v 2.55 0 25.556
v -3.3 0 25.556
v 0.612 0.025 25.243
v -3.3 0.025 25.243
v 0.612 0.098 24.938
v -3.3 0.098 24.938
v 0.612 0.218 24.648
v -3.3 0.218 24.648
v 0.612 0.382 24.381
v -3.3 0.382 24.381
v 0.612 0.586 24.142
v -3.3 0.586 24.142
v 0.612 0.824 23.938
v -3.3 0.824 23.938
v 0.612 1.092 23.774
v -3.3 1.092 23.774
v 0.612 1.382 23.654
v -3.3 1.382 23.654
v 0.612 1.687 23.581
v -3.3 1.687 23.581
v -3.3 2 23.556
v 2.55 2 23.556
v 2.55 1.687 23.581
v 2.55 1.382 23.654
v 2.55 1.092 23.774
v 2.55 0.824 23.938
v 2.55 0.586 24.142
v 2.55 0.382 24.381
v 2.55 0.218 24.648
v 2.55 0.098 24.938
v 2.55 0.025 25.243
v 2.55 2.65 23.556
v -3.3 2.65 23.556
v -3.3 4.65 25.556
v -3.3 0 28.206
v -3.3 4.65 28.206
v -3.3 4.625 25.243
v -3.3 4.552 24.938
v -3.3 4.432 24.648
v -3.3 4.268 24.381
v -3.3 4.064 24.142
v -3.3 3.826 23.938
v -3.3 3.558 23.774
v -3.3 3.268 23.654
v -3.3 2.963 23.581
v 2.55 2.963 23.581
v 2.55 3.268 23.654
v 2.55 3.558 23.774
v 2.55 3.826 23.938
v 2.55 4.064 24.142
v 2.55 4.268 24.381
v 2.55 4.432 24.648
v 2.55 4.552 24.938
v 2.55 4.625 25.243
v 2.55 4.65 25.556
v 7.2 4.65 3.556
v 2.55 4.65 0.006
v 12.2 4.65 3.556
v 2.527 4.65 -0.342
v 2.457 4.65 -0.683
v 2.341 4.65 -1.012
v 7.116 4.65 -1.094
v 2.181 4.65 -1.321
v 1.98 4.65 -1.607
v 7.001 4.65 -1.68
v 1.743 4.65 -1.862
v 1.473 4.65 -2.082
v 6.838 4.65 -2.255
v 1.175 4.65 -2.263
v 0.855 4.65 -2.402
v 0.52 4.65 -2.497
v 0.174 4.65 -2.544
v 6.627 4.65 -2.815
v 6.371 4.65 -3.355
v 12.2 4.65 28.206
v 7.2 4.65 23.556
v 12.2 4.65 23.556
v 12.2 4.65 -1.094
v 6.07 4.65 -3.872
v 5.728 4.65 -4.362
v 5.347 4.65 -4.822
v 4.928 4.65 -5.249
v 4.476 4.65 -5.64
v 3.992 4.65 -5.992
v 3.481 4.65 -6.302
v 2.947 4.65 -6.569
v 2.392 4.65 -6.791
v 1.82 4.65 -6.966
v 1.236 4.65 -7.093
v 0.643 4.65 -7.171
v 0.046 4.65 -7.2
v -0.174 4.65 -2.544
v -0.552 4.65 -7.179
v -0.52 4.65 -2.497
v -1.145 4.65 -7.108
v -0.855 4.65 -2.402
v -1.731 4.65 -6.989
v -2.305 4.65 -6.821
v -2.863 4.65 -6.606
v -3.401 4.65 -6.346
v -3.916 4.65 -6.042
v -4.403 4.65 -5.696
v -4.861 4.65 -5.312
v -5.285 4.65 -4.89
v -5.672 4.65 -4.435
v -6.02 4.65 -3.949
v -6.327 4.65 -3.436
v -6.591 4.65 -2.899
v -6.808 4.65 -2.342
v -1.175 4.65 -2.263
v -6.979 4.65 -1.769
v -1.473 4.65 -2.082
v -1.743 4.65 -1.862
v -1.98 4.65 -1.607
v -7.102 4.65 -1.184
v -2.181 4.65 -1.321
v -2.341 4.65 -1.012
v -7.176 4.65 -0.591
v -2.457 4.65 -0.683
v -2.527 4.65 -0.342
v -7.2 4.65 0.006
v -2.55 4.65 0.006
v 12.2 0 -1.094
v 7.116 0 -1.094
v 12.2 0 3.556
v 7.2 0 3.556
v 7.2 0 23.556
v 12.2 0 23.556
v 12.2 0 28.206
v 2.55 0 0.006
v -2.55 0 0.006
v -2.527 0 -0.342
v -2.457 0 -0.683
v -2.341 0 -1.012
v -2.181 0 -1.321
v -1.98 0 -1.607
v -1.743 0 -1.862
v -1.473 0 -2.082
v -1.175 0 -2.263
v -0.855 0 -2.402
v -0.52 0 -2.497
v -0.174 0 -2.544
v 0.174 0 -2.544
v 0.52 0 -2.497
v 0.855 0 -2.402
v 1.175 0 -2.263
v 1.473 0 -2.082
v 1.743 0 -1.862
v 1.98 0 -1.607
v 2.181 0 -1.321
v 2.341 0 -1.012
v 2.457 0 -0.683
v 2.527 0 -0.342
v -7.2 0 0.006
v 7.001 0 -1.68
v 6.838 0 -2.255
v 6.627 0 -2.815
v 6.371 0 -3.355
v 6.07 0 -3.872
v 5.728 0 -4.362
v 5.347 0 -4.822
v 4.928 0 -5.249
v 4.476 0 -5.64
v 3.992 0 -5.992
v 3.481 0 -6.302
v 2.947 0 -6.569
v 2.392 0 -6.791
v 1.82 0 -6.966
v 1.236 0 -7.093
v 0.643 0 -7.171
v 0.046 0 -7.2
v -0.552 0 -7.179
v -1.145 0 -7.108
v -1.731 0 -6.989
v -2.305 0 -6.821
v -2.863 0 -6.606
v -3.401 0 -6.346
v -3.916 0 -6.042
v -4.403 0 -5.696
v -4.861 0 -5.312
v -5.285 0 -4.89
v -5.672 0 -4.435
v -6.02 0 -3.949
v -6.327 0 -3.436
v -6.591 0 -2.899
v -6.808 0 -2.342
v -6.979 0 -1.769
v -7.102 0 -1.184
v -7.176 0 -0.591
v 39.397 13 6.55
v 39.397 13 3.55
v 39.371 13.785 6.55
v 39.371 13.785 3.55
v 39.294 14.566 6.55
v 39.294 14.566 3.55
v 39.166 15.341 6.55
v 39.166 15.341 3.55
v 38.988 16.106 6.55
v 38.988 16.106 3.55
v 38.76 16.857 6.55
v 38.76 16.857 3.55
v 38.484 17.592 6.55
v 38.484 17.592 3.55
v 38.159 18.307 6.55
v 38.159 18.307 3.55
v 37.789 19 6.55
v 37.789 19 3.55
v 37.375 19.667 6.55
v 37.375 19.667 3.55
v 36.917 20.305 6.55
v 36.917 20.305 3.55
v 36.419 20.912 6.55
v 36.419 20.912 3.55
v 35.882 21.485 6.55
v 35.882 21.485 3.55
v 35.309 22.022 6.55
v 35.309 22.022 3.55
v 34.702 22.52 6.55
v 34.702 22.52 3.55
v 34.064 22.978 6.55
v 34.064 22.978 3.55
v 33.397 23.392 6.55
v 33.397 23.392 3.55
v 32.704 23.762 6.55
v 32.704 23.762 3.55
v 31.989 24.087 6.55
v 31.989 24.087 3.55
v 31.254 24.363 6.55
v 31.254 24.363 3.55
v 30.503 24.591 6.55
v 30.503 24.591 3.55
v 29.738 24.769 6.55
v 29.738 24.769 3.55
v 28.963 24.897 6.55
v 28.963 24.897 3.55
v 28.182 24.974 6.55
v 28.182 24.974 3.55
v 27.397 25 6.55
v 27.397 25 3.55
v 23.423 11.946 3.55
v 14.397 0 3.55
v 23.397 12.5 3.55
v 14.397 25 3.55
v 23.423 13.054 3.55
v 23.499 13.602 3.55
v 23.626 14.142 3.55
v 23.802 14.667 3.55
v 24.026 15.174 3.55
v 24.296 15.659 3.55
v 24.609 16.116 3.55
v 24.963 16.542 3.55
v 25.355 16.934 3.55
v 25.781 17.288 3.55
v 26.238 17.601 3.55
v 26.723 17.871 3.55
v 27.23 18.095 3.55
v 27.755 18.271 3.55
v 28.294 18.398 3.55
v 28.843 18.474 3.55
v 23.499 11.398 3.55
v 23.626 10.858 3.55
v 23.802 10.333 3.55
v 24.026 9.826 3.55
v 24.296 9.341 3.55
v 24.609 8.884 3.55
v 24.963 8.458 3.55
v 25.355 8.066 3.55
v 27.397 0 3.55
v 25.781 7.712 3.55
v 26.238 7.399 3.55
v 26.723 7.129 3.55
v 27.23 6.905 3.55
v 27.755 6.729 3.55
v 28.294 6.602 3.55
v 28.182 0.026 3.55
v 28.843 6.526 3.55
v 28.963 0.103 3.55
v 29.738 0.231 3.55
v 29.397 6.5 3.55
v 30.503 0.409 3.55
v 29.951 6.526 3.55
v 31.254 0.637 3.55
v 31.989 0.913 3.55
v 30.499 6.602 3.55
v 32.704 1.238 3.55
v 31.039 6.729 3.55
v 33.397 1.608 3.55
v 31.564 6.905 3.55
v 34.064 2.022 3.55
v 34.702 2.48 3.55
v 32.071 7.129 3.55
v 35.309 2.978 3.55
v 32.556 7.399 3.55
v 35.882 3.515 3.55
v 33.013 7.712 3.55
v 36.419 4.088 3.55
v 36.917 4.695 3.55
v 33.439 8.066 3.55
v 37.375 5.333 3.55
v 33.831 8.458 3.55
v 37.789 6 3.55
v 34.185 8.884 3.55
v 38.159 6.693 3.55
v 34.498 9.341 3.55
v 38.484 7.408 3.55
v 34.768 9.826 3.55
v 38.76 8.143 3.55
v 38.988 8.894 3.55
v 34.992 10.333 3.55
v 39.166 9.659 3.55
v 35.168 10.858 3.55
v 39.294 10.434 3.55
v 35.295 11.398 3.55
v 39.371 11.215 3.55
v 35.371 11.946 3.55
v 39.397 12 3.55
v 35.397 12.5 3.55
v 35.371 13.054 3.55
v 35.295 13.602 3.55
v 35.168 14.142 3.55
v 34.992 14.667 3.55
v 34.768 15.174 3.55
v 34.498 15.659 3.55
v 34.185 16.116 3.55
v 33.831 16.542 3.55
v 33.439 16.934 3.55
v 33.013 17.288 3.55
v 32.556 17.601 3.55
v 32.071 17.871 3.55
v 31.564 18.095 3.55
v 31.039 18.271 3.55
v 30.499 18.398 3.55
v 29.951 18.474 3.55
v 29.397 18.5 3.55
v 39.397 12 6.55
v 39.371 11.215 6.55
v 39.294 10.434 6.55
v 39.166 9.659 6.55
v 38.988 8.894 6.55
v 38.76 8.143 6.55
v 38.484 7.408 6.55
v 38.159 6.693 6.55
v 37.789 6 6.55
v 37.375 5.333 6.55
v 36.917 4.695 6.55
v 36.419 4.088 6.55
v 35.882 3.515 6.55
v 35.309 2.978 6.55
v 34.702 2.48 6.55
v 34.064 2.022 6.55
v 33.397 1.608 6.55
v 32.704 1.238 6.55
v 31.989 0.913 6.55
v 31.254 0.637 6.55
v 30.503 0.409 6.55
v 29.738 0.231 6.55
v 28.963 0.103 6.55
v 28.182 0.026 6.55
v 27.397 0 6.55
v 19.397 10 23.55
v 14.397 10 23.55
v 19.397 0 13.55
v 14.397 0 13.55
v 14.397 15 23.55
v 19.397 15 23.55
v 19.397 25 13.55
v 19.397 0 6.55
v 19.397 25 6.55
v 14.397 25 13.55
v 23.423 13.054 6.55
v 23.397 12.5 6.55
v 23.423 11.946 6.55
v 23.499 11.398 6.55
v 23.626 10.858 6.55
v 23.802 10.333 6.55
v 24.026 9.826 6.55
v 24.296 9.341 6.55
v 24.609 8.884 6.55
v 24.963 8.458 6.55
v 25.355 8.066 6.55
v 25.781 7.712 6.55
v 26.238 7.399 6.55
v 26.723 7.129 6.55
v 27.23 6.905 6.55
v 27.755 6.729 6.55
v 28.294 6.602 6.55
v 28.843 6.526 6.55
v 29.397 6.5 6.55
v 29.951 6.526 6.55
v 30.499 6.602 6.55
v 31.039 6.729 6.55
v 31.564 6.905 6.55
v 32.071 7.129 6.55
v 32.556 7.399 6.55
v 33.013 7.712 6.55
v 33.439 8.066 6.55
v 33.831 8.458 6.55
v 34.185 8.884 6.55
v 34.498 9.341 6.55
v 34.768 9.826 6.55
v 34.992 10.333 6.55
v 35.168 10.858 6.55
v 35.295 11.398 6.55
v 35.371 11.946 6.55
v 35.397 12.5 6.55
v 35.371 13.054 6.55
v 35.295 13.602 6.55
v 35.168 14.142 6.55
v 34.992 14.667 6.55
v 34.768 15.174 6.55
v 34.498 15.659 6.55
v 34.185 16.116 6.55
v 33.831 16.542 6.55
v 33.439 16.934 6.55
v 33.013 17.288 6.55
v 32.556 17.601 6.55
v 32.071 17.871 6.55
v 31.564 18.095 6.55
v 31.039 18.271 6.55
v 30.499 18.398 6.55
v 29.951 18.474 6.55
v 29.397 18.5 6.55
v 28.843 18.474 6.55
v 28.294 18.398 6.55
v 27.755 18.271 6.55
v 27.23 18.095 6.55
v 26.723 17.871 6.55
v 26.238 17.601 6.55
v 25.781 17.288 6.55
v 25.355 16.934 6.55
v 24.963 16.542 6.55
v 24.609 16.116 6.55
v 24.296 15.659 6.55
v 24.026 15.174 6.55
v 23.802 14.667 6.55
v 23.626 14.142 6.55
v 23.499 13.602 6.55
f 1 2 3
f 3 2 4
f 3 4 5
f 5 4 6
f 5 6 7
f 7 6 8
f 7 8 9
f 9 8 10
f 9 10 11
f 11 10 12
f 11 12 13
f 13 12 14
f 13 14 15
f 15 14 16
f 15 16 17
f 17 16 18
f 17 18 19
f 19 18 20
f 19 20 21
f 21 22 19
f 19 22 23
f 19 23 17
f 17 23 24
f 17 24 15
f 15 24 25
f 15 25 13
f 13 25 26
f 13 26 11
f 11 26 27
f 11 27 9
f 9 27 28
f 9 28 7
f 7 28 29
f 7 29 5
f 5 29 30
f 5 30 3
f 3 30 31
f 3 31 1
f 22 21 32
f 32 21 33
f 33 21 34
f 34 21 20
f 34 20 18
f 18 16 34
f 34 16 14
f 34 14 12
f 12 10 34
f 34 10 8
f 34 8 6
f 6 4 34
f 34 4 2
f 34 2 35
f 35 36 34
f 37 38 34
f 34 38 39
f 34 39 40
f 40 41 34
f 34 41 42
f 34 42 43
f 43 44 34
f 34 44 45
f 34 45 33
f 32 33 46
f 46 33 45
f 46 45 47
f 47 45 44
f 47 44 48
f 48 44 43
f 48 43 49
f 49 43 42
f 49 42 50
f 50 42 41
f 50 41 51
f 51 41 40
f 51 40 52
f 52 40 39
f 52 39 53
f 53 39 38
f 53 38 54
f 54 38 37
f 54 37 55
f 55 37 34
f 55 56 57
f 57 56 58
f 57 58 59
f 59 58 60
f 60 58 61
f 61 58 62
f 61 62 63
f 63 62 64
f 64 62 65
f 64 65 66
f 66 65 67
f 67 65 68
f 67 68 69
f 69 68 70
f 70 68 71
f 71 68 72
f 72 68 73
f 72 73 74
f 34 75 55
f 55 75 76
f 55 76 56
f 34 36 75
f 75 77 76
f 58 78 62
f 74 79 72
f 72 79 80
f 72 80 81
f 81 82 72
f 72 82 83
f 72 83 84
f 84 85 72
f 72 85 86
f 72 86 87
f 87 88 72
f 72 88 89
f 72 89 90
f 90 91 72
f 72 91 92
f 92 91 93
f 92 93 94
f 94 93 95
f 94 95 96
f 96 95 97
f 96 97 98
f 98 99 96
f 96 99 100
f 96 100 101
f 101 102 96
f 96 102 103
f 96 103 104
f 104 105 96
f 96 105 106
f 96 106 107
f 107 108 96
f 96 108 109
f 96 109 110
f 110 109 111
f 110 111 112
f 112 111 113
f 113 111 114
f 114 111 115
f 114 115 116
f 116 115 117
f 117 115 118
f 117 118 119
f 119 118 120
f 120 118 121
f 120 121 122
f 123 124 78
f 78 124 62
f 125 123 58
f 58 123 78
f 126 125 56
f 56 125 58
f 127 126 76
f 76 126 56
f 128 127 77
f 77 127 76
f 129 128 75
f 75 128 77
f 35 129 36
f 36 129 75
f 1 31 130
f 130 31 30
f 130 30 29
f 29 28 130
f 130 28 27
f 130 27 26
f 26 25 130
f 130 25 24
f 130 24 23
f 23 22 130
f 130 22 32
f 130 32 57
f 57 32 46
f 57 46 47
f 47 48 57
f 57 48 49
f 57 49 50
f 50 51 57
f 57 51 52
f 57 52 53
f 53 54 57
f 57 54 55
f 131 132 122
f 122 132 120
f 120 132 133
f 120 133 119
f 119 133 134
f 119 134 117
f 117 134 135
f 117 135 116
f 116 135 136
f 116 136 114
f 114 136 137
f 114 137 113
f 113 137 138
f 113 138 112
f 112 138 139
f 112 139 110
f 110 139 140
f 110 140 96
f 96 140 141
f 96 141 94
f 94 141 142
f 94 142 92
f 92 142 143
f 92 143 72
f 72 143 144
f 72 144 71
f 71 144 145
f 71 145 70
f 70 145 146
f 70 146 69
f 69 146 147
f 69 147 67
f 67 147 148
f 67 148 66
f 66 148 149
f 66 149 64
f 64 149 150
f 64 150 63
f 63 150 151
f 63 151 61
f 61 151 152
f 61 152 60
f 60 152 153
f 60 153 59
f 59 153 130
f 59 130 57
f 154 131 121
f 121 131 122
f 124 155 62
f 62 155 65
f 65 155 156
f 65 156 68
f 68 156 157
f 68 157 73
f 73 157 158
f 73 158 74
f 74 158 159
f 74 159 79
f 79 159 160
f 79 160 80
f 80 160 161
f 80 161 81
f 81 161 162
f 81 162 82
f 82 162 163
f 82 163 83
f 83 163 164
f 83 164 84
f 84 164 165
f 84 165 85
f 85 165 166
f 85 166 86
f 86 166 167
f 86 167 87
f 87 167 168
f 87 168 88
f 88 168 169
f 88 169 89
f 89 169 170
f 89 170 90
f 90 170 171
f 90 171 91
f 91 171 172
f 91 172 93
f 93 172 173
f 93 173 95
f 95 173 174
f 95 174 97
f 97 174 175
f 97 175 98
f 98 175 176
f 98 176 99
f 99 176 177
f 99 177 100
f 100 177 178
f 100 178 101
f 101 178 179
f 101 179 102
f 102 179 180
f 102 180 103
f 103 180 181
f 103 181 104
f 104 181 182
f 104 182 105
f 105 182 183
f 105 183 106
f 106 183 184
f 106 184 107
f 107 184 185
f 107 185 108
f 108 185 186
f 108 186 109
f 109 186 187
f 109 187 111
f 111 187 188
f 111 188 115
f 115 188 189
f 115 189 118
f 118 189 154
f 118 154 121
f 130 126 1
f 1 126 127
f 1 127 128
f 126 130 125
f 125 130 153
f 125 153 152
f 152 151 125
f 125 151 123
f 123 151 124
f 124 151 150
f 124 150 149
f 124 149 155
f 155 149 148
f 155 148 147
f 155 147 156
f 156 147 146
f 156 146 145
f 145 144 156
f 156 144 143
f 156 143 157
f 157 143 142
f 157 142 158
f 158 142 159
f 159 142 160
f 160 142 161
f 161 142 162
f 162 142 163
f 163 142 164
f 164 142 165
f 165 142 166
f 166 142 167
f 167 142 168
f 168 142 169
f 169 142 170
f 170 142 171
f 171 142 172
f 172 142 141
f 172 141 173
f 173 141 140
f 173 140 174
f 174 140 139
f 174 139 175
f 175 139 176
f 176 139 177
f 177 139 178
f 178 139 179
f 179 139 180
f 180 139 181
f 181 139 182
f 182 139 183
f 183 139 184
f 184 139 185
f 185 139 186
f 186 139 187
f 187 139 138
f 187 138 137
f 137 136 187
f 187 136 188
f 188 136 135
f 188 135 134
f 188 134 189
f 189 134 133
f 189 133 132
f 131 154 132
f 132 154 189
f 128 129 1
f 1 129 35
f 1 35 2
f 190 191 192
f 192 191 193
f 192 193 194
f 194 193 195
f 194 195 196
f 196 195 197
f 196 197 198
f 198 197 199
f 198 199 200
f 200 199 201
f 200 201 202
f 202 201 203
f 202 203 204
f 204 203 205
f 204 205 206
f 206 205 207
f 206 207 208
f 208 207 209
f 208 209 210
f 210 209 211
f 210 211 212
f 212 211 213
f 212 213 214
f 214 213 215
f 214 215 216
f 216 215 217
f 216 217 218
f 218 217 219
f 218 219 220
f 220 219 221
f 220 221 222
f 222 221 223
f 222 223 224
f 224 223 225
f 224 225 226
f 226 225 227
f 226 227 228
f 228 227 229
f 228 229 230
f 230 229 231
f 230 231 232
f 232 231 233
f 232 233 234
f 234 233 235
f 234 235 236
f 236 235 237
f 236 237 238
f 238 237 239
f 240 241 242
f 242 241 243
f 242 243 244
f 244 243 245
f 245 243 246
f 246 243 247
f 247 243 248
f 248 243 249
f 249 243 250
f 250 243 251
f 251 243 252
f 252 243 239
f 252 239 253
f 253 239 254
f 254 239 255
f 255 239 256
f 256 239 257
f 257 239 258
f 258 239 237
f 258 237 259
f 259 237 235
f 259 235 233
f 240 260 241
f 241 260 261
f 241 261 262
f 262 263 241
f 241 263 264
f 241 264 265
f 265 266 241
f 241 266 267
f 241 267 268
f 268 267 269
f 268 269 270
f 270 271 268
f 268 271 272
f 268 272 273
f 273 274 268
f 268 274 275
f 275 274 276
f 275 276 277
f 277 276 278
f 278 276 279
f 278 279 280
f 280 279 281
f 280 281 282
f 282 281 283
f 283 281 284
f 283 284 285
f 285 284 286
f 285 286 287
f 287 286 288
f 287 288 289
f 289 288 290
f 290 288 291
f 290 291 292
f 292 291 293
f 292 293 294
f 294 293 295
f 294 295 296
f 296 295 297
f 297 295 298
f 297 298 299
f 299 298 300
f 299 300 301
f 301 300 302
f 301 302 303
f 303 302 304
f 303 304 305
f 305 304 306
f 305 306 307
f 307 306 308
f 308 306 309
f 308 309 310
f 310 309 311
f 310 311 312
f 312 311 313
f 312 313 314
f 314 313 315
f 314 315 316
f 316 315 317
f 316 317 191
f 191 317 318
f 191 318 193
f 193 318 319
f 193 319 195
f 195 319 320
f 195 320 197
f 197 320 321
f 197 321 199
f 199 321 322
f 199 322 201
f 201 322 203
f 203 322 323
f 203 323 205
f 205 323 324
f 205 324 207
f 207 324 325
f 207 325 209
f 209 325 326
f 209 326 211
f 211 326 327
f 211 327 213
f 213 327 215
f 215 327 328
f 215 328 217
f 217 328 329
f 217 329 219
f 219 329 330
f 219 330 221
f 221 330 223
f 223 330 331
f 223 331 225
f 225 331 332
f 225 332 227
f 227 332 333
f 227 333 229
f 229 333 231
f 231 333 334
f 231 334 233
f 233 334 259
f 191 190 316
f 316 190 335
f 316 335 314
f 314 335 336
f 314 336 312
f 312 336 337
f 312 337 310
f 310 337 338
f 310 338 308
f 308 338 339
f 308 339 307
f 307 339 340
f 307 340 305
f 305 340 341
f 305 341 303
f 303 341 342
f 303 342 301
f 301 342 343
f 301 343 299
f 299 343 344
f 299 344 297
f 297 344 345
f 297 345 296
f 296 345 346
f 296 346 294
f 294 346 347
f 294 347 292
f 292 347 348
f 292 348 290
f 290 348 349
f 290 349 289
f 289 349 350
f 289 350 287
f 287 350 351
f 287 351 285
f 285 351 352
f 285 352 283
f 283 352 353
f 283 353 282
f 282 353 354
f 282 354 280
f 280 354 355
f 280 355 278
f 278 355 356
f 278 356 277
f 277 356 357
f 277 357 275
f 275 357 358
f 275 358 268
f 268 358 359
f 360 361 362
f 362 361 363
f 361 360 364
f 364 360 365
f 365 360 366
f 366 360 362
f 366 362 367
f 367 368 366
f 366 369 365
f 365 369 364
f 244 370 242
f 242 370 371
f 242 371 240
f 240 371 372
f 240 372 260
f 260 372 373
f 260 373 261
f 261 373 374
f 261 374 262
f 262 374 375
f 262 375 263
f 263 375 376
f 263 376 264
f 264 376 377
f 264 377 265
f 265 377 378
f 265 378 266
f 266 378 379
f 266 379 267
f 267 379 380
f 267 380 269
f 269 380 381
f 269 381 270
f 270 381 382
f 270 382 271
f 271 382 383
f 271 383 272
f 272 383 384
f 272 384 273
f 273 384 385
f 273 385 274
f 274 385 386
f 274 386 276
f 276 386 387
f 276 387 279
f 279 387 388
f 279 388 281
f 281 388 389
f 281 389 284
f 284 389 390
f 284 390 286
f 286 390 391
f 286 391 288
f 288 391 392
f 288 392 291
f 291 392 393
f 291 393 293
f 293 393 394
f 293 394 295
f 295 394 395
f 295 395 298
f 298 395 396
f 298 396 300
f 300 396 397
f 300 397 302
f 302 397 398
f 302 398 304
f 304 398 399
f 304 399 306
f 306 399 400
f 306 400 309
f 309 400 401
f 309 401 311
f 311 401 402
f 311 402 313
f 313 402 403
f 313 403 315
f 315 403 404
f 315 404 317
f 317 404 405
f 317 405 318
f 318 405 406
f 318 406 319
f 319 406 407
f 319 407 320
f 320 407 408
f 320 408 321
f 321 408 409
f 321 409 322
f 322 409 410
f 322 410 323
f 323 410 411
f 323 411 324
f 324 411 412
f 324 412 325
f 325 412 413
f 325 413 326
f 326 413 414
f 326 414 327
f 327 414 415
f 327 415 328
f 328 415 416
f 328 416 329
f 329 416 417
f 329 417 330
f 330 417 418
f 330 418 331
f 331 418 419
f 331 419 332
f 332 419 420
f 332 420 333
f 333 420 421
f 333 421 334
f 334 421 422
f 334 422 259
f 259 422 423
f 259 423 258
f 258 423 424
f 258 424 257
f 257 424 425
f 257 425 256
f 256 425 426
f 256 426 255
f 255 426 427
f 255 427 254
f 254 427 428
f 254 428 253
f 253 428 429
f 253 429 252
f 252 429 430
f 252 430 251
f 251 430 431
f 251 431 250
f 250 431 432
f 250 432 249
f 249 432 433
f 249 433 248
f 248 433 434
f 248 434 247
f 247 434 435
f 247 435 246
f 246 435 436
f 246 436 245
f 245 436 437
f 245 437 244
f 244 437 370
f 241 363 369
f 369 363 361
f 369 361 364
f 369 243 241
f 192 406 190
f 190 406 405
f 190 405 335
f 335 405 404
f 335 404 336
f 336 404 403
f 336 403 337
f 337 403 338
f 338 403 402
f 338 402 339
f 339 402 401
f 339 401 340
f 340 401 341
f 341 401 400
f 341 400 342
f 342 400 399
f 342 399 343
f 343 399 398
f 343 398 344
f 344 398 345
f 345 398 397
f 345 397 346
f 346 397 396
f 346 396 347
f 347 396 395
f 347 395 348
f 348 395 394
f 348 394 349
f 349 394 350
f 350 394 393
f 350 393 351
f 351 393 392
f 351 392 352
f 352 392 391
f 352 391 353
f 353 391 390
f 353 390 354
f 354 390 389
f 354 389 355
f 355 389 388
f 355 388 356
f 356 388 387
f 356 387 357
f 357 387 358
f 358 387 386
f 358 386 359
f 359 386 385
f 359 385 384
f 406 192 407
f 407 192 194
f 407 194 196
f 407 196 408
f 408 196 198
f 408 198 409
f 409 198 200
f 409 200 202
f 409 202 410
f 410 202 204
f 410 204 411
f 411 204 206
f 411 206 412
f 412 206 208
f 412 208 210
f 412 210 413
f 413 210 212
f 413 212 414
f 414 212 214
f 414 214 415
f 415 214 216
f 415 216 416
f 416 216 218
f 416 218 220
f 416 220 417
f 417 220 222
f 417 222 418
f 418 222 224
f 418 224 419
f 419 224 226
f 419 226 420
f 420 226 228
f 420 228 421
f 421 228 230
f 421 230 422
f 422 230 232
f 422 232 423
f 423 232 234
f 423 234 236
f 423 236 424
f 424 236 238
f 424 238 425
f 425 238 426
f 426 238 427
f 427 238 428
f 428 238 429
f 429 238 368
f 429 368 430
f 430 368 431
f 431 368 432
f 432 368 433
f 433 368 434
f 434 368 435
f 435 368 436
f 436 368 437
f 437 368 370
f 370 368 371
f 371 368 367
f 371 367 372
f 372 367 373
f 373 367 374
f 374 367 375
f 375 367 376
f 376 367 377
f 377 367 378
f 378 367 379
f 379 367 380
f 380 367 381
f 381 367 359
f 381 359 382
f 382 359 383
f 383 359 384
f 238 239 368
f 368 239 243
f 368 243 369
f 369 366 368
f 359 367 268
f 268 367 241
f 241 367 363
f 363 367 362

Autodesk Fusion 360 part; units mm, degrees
sketch "Sketch1" plane through (0, 0, 0) normal (0, 1, 0) x (1, 0, 0)
  circle A0 centre (0, 0) radius 7.2
  circle A1 centre (0, 0) radius 2.55
  line L0 (7.2, -0.0062) -> (2.55, -0.0062)
  line L1 (2.55, -0.0062) -> (2.55, -28.2062)
  line L2 (2.55, -28.2062) -> (7.2, -28.2062)
  line L3 (7.2, -28.2062) -> (7.2, -0.0062)
  line L4 (7.2, -28.2062) -> (-3.3, -28.2062)
  line L5 (-3.3, -28.2062) -> (-3.3, -23.5562)
  line L6 (-3.3, -23.5562) -> (7.2, -23.5562)
  line L7 (7.2, -23.5562) -> (7.2, -28.2062)
  line L8 (2.55, -0.0062) -> (-7.2, -0.0062)
  line L9 (7.2, -5.8) -> (7.2, -1.15)
  line L10 (7.2, -23.5562) -> (12.2, -23.5562)
  line L11 (12.2, -23.5562) -> (12.2, -28.2062)
  line L12 (12.2, -28.2062) -> (7.2, -28.2062)
  line L13 (7.2, -28.2062) -> (7.2, -23.5562)
  line L14 (7, -3.5562) -> (12.2, -3.5562)
  line L15 (12.2, -3.5562) -> (12.2, 1.0938)
  line L16 (12.2, 1.0938) -> (7, 1.0938)
  line L17 (7, 1.0938) -> (7, -3.5562)
  dimension "d1" = 14.4
  dimension "d2" = 5.1
  dimension "d3" = 4.65
  dimension "d4" = 28.2
  dimension "d5" = 10.5
  dimension "d21" = 5
  dimension "d37" = 5.2
  dimension "d38" = 4.65
  dimension "d39" = 20
extrude "Extrude1" add sketch "Sketch1" along normal blind 4.65 contours A0 L0 L16 L17 | A0 L3 L9 L14 L17 | A0 L0 L17 | A0 L3 L9 L14 L15 L16 | A0 L1 L3 L6 L9 L14 L17 | A0 L0 L1 L17 | A0 A1 L0 L8 L16 L17 | L1 L2 L3 L4 L6 L7 L13 | L1 L4 L5 L6 | L3 L7 L10 L11 L12 L13 makes body 1
fillet "Fillet3" radius 2 2 edges at (-0.375, 4.65, 23.5562) (-0.375, 0, 23.5562) on bodies 1
sketch "Sketch2" plane through (0, 0, 0) normal (0, 1, 0) x (1, 0, 0)
  line L0 (14.397, -23.55) -> (19.397, -23.55)
  line L1 (19.397, -23.55) -> (19.397, -3.55)
  line L2 (19.397, -3.55) -> (14.397, -3.55)
  line L3 (14.397, -3.55) -> (14.397, -23.55)
  line L4 (14.397, -3.55) -> (39.397, -3.55)
  line L5 (39.397, -3.55) -> (39.397, -6.55)
  line L6 (39.397, -6.55) -> (14.397, -6.55)
  line L7 (14.397, -6.55) -> (14.397, -3.55)
  dimension "d22" = 5
  dimension "d23" = 20
  dimension "d24" = 25
  dimension "d25" = 3
extrude "Extrude2" add sketch "Sketch2" along normal blind 25 separate body contours L1 L2 L3 L4 L6 L7 | L1 L4 L5 L6 makes body 2
extrude "Extrude3" add sketch "Sketch2" along normal blind 25 contours L0 L1 L3 L6 bodies 2
sketch "Sketch3" plane through (0, 0, 0) normal (0, 0, 1) x (1, 0, 0)
  circle A0 centre (29.397, 12.5) radius 6
  line L0 (19.397, 25) -> (39.397, 25)
  dimension "d31" = 12
extrude "Extrude4" cut sketch "Sketch3" along normal blind 13 bodies 2
chamfer "Chamfer1" distance 10 angle 45 2 edges at (16.897, 25, 23.55) (16.897, 0, 23.55) on bodies 2
fillet "Fillet5" radius 12 2 edges at (39.397, 0, 5.05) (39.397, 25, 5.05) on bodies 2
